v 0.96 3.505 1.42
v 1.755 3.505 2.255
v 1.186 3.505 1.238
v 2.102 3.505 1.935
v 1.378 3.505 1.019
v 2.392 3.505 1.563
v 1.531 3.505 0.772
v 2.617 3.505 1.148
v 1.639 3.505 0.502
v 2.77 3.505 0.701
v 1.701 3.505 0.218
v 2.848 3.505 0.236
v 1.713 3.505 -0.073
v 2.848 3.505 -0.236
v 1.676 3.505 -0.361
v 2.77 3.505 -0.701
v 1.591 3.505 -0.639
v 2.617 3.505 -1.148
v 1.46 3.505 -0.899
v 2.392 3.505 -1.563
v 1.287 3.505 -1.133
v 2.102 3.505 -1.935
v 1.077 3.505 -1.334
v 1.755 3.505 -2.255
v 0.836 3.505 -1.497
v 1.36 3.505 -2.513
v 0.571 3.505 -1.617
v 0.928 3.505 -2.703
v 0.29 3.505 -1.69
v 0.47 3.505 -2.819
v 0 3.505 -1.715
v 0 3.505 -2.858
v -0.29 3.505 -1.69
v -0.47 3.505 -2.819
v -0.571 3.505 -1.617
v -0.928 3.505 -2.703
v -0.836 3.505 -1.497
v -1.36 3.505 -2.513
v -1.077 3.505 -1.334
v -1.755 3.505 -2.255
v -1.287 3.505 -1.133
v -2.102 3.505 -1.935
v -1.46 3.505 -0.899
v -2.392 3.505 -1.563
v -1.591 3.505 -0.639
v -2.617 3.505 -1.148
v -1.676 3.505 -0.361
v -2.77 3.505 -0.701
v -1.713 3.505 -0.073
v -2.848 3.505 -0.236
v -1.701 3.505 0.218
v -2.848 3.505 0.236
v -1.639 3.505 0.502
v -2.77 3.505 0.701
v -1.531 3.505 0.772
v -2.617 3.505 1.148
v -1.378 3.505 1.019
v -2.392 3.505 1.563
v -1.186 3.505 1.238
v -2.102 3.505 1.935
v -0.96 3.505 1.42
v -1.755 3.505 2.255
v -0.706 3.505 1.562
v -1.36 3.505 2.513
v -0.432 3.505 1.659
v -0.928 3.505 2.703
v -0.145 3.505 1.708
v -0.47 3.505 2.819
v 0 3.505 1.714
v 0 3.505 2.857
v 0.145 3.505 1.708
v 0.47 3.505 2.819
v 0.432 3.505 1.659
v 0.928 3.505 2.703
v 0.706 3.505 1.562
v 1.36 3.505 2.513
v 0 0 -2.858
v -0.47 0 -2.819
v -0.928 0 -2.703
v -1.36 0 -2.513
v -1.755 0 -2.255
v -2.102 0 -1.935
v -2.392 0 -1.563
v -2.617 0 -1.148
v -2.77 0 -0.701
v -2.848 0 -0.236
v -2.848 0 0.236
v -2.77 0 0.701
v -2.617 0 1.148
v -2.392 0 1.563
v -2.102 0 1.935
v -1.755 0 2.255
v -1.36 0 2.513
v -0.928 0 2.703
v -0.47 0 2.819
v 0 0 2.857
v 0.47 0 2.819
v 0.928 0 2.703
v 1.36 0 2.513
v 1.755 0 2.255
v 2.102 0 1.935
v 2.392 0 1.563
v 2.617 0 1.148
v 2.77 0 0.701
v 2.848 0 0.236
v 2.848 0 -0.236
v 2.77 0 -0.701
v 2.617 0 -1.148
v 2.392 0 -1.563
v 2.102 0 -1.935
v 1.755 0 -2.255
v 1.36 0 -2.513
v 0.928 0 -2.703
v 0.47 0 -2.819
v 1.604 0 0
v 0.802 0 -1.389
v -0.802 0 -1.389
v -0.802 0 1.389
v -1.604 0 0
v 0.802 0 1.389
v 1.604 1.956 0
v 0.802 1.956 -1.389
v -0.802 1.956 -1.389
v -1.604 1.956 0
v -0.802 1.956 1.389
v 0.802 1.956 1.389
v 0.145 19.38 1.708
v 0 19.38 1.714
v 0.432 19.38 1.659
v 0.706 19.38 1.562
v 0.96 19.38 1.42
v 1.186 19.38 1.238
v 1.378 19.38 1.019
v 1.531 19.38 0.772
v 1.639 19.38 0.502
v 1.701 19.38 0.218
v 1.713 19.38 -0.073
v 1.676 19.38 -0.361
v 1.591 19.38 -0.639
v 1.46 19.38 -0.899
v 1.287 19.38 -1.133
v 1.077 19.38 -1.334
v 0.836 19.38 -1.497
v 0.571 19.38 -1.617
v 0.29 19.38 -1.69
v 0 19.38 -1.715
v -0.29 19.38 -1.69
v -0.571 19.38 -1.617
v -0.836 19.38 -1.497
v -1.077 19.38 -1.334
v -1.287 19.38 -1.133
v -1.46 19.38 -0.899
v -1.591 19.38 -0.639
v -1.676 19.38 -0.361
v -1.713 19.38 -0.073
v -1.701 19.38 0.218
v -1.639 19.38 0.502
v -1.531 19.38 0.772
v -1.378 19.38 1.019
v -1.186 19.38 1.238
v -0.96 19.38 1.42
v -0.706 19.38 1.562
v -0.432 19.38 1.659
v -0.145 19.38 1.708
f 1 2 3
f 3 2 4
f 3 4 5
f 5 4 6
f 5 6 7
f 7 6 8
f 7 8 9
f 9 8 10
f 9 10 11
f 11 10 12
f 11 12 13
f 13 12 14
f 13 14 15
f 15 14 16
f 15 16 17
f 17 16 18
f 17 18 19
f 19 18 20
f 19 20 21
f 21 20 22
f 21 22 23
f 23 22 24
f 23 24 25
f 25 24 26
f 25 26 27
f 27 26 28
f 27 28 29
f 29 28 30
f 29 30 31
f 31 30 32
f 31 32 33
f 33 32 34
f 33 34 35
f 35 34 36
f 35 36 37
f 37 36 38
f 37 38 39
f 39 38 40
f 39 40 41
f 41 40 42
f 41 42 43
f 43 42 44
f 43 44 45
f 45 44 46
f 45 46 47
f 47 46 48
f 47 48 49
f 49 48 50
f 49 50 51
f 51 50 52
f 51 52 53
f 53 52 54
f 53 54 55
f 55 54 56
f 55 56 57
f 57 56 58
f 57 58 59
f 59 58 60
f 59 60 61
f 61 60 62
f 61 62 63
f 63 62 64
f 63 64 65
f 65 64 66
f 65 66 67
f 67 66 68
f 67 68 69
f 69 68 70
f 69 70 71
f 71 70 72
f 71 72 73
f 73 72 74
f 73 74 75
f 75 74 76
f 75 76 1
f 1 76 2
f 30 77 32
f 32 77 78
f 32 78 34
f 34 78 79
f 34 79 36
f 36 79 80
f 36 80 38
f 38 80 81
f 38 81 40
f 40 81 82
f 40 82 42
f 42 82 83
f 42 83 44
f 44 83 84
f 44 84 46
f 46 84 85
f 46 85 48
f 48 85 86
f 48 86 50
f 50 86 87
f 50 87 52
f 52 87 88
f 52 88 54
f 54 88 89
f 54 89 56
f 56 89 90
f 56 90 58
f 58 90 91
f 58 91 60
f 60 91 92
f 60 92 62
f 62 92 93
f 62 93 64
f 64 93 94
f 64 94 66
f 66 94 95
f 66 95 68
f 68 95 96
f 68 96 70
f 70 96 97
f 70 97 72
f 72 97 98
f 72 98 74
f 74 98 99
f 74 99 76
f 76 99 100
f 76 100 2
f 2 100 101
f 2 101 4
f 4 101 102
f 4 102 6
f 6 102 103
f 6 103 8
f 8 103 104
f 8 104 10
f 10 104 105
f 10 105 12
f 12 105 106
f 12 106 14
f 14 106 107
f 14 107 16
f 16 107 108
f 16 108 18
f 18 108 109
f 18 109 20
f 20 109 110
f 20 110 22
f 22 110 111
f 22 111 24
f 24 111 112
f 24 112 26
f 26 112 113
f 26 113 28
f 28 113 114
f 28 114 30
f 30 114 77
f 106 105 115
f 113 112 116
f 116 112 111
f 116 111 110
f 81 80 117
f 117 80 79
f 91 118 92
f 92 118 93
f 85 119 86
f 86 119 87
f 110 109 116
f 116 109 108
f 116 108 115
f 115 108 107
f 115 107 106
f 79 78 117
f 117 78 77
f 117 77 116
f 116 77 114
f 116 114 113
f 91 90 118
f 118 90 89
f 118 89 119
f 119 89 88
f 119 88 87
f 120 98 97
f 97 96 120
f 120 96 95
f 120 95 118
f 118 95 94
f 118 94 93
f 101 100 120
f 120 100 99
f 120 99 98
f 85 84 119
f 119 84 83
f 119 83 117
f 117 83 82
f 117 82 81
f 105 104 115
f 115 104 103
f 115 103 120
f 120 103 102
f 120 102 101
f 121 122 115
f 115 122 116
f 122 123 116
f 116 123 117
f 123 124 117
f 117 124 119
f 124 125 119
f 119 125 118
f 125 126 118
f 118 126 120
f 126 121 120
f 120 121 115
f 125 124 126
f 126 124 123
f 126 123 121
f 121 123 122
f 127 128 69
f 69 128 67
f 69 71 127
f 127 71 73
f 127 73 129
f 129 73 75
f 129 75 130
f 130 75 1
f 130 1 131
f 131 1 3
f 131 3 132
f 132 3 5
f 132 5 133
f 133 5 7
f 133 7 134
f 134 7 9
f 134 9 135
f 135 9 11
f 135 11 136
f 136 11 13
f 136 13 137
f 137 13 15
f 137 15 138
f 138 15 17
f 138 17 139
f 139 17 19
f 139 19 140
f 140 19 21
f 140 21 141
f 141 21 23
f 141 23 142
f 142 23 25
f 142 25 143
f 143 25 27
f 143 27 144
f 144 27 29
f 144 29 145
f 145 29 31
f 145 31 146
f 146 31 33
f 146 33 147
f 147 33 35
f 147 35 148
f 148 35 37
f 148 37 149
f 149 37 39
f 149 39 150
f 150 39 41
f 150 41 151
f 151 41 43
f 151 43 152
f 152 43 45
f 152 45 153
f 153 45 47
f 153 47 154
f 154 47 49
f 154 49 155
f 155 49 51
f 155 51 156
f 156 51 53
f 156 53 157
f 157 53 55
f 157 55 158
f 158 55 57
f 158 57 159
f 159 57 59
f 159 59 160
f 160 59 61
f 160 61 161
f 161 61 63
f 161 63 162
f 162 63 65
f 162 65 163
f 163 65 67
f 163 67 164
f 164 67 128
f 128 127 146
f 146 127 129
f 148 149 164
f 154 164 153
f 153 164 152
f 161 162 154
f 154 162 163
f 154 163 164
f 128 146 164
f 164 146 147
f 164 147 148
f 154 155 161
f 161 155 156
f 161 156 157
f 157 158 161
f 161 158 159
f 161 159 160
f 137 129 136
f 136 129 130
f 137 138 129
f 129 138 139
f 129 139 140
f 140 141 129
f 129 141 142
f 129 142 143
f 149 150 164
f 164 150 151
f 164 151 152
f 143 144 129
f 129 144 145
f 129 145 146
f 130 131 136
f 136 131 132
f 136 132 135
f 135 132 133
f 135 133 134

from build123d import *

# Parameters (mm, degrees)
SKETCH1_R           = 2.8575
BOSS_EXTRUDE1_DEPTH = 3.5052
CUT_EXTRUDE1_DEPTH  = 1.9558
SKETCH3_R           = 1.7145
BOSS_EXTRUDE2_DEPTH = 15.875


with BuildPart() as part:
    # Sketch1 → Boss-Extrude1 (new body)
    with BuildSketch(Plane(origin=(0, 0, 0), x_dir=(1, 0, 0), z_dir=(0, 1, 0))):
        Circle(SKETCH1_R)
    extrude(amount=BOSS_EXTRUDE1_DEPTH)

    # Sketch2 → Cut-Extrude1 (cut)
    with BuildSketch(Plane.XZ):
        Polygon((1.603951217, 0), (0.801975608, 1.3890625), (-0.801975608, 1.3890625), (-1.603951217, 0), (-0.801975608, -1.3890625), (0.801975608, -1.3890625), align=None)
    extrude(amount=-CUT_EXTRUDE1_DEPTH, mode=Mode.SUBTRACT)

    # Sketch3 → Boss-Extrude2 (add)
    with BuildSketch(Plane(origin=(0, 3.5052, 0), x_dir=(1, 0, 0), z_dir=(0, 1, 0))):
        Circle(SKETCH3_R)
    extrude(amount=BOSS_EXTRUDE2_DEPTH)


solid = part.part
